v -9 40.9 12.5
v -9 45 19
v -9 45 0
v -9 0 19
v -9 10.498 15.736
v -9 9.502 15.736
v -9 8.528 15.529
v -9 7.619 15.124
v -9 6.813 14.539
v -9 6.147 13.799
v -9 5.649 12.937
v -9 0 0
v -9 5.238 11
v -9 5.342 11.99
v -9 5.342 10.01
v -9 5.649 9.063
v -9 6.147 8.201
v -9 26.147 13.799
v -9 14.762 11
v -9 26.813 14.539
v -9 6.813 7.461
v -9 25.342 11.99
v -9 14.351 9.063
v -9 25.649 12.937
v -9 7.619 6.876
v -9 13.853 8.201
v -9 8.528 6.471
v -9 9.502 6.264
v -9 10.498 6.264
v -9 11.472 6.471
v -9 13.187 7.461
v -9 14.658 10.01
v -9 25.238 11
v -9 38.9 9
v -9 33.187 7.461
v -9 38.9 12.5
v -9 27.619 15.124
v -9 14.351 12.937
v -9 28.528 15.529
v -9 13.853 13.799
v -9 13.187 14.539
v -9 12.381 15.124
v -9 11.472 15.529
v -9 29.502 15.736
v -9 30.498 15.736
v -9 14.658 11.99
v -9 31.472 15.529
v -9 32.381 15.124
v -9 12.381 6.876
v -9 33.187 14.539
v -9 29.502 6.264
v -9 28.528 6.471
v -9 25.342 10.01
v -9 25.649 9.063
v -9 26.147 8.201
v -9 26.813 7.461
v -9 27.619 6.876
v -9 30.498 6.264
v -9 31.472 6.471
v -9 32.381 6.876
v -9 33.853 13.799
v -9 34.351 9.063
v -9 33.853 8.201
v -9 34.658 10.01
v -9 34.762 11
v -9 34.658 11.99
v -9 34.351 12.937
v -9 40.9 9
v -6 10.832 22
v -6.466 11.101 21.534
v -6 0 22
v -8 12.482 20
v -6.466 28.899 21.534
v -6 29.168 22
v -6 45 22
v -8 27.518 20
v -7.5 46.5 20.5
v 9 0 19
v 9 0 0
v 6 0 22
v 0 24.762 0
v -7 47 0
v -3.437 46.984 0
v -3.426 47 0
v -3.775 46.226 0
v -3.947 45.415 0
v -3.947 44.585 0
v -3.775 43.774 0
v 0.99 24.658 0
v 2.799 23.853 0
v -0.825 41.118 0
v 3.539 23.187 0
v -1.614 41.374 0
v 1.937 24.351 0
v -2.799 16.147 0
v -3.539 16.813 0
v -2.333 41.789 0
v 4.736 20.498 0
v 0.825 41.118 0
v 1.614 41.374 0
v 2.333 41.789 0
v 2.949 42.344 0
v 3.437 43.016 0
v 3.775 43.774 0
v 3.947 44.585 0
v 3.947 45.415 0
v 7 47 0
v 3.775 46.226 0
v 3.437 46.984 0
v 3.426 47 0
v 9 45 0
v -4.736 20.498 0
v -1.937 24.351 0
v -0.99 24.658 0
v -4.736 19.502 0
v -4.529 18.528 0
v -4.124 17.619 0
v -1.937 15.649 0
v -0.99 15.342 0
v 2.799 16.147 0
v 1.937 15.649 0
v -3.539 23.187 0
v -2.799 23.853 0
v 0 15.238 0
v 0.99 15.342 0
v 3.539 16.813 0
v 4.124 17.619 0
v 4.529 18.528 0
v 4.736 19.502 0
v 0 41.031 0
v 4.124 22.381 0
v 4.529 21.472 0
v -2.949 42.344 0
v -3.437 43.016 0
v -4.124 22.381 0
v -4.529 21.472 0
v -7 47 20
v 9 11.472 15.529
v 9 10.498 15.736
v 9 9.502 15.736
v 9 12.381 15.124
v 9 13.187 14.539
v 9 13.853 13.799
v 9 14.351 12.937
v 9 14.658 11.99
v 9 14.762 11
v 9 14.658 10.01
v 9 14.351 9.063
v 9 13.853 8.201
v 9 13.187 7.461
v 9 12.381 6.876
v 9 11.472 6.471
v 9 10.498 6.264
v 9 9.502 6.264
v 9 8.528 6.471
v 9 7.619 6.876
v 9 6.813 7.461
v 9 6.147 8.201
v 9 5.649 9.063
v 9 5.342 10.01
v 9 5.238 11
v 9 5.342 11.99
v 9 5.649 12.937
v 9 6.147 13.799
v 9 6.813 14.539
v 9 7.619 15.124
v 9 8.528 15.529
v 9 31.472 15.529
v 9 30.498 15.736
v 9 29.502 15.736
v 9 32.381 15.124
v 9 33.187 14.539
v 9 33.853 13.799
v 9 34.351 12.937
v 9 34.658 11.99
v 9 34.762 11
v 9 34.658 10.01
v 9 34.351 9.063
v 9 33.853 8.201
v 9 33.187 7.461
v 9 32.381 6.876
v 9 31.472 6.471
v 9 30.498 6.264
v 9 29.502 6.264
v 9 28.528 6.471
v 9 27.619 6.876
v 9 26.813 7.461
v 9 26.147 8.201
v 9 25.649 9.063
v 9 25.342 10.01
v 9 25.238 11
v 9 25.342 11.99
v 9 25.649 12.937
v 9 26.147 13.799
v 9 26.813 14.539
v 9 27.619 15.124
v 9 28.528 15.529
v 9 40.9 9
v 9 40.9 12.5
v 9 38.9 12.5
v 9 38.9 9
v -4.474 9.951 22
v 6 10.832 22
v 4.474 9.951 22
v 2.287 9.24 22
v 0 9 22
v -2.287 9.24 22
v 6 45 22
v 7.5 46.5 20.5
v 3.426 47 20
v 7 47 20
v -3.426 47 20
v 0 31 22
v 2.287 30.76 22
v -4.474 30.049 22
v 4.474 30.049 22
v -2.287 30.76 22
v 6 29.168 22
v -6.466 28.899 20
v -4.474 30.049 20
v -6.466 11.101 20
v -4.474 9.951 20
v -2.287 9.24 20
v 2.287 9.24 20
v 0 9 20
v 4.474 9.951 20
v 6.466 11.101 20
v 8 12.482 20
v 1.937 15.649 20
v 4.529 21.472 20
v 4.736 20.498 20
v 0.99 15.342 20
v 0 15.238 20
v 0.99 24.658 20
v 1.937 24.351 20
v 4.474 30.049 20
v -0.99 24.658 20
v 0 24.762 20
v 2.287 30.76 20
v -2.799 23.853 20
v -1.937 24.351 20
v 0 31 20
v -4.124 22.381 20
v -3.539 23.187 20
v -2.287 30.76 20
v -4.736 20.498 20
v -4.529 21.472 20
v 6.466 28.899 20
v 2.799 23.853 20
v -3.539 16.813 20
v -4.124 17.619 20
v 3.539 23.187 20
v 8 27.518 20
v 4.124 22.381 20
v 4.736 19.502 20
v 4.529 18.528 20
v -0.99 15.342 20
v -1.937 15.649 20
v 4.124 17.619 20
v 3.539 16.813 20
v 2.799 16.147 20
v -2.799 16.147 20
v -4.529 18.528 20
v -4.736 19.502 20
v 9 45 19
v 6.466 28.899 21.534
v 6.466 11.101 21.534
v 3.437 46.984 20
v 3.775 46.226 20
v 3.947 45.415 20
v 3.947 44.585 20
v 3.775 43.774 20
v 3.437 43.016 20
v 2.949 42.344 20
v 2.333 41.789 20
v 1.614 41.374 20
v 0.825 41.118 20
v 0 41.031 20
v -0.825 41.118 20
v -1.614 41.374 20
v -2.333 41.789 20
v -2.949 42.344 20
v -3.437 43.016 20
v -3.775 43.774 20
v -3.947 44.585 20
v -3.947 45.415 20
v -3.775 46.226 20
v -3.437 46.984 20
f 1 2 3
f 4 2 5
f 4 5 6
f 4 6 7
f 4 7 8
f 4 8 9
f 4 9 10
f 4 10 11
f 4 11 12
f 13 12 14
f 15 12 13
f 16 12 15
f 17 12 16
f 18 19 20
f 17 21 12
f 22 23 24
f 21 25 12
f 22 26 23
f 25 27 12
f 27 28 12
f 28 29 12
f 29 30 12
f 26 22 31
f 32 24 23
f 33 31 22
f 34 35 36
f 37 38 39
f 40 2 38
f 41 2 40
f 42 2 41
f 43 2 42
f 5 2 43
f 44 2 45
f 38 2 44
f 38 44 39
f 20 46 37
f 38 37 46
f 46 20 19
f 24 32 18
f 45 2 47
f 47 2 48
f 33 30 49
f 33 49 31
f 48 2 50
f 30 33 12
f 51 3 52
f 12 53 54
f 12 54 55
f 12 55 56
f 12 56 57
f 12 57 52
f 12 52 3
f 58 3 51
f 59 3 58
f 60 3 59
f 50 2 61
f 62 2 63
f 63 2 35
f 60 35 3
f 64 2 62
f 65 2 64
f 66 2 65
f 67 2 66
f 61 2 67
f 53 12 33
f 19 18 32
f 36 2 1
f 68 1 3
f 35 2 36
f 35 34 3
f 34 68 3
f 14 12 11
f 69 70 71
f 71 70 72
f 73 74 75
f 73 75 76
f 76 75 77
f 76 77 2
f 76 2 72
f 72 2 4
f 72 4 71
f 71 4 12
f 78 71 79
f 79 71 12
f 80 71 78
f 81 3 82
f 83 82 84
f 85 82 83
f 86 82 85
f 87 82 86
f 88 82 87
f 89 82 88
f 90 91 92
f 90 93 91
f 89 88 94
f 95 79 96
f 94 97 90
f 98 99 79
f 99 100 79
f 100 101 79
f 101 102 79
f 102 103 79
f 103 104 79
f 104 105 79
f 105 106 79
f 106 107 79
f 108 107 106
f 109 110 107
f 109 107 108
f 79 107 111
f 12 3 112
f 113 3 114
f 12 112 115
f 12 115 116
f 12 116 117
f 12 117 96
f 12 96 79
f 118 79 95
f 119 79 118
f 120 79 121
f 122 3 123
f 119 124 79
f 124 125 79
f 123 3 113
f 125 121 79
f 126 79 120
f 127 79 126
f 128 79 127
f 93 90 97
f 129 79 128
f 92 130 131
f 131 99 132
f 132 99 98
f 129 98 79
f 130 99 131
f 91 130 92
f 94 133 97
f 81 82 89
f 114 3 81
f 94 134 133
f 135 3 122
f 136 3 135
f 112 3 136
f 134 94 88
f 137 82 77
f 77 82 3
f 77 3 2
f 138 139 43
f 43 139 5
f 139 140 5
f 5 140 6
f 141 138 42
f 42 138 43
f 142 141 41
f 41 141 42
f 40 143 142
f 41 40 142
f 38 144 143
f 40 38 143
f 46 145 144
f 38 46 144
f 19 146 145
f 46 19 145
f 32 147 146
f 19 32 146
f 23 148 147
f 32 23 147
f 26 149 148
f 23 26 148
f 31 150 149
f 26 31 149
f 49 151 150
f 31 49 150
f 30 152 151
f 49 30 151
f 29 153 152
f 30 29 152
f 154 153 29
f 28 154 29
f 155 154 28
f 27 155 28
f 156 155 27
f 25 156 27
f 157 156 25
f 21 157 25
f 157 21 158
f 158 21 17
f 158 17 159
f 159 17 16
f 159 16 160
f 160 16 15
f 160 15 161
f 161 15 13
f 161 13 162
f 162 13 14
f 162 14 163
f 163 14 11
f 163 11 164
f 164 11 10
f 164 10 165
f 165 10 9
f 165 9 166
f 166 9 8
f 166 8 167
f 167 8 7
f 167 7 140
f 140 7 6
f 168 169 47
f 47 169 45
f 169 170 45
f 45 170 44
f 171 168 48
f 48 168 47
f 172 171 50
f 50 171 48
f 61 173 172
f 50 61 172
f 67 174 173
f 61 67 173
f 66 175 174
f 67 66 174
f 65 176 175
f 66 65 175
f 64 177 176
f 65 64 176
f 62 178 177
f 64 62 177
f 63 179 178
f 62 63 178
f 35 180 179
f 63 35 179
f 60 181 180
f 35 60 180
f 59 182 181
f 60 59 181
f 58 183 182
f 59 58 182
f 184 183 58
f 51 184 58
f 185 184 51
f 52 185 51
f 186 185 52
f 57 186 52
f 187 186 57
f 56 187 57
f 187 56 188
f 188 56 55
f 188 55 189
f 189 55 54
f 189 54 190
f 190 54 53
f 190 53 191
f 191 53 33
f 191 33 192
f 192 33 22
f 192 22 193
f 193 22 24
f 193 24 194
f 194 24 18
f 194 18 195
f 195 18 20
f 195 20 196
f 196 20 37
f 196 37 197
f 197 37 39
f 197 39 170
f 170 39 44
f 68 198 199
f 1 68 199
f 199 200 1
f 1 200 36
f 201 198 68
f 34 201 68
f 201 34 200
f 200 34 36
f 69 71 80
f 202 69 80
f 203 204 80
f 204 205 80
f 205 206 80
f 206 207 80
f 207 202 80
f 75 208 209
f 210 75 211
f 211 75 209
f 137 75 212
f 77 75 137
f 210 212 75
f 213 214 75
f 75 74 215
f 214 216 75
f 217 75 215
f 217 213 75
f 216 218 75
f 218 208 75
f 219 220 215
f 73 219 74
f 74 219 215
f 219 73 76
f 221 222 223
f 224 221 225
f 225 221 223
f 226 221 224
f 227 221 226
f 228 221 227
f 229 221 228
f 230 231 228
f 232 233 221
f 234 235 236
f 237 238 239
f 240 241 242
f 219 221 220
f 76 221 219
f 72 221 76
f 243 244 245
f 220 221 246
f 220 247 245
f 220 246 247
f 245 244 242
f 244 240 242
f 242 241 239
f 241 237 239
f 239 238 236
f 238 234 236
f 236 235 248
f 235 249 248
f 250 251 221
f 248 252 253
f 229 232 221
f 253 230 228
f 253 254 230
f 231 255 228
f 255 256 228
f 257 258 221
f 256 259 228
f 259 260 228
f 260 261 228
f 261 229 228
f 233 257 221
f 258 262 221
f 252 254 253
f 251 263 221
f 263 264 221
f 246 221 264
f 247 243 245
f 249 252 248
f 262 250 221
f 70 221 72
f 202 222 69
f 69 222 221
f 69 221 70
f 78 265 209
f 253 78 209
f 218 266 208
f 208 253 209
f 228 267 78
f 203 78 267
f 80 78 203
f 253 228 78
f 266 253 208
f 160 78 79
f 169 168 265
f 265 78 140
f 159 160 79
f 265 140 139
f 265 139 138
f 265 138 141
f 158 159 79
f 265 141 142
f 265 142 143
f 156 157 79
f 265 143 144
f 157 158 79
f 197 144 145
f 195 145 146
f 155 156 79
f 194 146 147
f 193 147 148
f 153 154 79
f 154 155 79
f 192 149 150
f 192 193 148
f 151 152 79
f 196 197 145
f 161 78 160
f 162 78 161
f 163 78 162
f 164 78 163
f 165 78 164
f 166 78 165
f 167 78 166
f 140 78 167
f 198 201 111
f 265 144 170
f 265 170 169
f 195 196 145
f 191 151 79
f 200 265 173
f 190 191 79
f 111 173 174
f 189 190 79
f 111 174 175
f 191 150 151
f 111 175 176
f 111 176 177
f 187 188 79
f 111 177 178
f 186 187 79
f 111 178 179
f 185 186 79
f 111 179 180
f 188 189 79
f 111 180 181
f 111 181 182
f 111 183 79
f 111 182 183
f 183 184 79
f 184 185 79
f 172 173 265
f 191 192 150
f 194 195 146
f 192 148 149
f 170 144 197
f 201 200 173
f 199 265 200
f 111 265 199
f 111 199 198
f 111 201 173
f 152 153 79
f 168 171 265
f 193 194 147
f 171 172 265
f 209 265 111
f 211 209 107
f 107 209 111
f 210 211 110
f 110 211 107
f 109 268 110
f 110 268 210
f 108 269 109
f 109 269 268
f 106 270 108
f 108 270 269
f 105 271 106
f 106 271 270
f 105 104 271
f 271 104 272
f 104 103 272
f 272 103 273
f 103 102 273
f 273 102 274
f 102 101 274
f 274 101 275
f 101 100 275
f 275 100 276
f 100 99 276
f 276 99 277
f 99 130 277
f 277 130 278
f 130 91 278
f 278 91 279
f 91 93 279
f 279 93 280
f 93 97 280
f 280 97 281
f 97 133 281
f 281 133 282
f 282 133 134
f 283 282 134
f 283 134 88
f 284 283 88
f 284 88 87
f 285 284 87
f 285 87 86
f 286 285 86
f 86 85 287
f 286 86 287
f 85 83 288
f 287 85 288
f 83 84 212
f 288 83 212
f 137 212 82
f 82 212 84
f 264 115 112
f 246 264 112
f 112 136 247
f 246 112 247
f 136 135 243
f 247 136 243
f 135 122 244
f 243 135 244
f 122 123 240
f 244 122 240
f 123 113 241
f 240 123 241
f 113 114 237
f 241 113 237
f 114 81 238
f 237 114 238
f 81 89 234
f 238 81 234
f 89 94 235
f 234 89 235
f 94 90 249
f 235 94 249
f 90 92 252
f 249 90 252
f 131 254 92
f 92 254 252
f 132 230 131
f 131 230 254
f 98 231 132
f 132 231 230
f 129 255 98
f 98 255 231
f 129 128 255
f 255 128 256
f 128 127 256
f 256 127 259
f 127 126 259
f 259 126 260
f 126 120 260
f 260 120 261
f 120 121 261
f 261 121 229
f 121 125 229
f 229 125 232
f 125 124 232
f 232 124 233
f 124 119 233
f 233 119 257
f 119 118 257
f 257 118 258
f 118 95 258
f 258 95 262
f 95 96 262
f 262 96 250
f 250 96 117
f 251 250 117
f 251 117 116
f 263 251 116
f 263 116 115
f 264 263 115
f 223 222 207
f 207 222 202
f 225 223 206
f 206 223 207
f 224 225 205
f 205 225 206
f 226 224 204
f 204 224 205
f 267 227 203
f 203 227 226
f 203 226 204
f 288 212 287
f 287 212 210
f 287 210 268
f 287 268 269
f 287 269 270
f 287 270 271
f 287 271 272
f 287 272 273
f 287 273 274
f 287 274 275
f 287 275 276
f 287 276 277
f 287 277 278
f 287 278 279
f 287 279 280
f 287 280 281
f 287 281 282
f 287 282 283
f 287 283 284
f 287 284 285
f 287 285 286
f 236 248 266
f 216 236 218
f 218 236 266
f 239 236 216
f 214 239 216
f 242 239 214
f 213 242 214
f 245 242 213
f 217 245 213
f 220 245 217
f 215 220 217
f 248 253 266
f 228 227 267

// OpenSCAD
// nelsoncs 2013Jun05 - NCSAppSoft.com
// modified to support:
// 1. U.S. measurements for y-idler for 3/8 in. rod threaded, 5/16 in. rod smooth
// 
// Original based on:
// PRUSA iteration3
// Y frame corners
// GNU GPL v3
// Josef Průša <iam@josefprusa.cz> and contributors
// http://www.reprap.org/wiki/Prusa_Mendel
// http://prusamendel.org

rod_diameter = 9.525; 		// 3/8 in. Note: parts are drilled to spec. on press
slide_rod_diameter = 7.9375; 	// 5/16 in.

module corner_base(){	
 translate([-9,-11,0])cube([18,22,47]);
}

module corner_holes(){
 translate([-11,-11,0]){
  // Bottom hole
  translate([0,11,10]) rotate([0,90,0]) translate([0,0,-5]) cylinder(h = 270, r=rod_diameter/2, $fn=30);
  // Top hole
  translate([0,11,30]) rotate([0,90,0]) translate([0,0,-5]) cylinder(h = 270, r=rod_diameter/2, $fn=30);
  // Middle hole
  translate([11,0,20]) rotate([0,0,90]) rotate([0,90,0]) translate([0,0,-5]) cylinder(h = 270, r=rod_diameter/2, $fn=30);

  // Washer hole
  translate([11,-3,20]) rotate([0,0,90]) rotate([0,90,0]) translate([0,0,-5]) cylinder(h = 10, r=11, $fn=30);

  // Top smooth rod insert
  // Smooth rod place
  translate([11,2,45]) rotate([0,90,90]) cylinder(h = 270, r=slide_rod_diameter/2, $fn=30); 
  // Ziptie
  translate([-5,9.5,38.9])  cube([30,3.5,2]);
 }
}

module corner_fancy(){
 // Side corner cutouts
  translate([-8,-9,0]) rotate([0,0,-45-180]) translate([-15,0,-1]) cube([30,30,51]);
  translate([8,-9,0]) rotate([0,0,45-180]) translate([-15,0,-1]) cube([30,30,51]);
 // Top corner cutouts
  translate([7,0,49-2]) rotate([0,45,0]) translate([-15,-15,0]) cube([30,30,30]);
  translate([-7,0,49-2]) rotate([0,-45,0]) translate([-15,-15,0]) cube([30,30,30]);
  rotate([0,0,90]){
   translate([-9,0,49-2]) rotate([0,-45,0]) translate([-15,-15,0]) cube([30,30,30]);
  }
}


// Final part
module corner(){
 // Rotate the part for better printing
 translate([0,0,11]) rotate([-90,0,0]) difference(){
  corner_base();
  corner_holes();
  corner_fancy();
 }
}

corner();
